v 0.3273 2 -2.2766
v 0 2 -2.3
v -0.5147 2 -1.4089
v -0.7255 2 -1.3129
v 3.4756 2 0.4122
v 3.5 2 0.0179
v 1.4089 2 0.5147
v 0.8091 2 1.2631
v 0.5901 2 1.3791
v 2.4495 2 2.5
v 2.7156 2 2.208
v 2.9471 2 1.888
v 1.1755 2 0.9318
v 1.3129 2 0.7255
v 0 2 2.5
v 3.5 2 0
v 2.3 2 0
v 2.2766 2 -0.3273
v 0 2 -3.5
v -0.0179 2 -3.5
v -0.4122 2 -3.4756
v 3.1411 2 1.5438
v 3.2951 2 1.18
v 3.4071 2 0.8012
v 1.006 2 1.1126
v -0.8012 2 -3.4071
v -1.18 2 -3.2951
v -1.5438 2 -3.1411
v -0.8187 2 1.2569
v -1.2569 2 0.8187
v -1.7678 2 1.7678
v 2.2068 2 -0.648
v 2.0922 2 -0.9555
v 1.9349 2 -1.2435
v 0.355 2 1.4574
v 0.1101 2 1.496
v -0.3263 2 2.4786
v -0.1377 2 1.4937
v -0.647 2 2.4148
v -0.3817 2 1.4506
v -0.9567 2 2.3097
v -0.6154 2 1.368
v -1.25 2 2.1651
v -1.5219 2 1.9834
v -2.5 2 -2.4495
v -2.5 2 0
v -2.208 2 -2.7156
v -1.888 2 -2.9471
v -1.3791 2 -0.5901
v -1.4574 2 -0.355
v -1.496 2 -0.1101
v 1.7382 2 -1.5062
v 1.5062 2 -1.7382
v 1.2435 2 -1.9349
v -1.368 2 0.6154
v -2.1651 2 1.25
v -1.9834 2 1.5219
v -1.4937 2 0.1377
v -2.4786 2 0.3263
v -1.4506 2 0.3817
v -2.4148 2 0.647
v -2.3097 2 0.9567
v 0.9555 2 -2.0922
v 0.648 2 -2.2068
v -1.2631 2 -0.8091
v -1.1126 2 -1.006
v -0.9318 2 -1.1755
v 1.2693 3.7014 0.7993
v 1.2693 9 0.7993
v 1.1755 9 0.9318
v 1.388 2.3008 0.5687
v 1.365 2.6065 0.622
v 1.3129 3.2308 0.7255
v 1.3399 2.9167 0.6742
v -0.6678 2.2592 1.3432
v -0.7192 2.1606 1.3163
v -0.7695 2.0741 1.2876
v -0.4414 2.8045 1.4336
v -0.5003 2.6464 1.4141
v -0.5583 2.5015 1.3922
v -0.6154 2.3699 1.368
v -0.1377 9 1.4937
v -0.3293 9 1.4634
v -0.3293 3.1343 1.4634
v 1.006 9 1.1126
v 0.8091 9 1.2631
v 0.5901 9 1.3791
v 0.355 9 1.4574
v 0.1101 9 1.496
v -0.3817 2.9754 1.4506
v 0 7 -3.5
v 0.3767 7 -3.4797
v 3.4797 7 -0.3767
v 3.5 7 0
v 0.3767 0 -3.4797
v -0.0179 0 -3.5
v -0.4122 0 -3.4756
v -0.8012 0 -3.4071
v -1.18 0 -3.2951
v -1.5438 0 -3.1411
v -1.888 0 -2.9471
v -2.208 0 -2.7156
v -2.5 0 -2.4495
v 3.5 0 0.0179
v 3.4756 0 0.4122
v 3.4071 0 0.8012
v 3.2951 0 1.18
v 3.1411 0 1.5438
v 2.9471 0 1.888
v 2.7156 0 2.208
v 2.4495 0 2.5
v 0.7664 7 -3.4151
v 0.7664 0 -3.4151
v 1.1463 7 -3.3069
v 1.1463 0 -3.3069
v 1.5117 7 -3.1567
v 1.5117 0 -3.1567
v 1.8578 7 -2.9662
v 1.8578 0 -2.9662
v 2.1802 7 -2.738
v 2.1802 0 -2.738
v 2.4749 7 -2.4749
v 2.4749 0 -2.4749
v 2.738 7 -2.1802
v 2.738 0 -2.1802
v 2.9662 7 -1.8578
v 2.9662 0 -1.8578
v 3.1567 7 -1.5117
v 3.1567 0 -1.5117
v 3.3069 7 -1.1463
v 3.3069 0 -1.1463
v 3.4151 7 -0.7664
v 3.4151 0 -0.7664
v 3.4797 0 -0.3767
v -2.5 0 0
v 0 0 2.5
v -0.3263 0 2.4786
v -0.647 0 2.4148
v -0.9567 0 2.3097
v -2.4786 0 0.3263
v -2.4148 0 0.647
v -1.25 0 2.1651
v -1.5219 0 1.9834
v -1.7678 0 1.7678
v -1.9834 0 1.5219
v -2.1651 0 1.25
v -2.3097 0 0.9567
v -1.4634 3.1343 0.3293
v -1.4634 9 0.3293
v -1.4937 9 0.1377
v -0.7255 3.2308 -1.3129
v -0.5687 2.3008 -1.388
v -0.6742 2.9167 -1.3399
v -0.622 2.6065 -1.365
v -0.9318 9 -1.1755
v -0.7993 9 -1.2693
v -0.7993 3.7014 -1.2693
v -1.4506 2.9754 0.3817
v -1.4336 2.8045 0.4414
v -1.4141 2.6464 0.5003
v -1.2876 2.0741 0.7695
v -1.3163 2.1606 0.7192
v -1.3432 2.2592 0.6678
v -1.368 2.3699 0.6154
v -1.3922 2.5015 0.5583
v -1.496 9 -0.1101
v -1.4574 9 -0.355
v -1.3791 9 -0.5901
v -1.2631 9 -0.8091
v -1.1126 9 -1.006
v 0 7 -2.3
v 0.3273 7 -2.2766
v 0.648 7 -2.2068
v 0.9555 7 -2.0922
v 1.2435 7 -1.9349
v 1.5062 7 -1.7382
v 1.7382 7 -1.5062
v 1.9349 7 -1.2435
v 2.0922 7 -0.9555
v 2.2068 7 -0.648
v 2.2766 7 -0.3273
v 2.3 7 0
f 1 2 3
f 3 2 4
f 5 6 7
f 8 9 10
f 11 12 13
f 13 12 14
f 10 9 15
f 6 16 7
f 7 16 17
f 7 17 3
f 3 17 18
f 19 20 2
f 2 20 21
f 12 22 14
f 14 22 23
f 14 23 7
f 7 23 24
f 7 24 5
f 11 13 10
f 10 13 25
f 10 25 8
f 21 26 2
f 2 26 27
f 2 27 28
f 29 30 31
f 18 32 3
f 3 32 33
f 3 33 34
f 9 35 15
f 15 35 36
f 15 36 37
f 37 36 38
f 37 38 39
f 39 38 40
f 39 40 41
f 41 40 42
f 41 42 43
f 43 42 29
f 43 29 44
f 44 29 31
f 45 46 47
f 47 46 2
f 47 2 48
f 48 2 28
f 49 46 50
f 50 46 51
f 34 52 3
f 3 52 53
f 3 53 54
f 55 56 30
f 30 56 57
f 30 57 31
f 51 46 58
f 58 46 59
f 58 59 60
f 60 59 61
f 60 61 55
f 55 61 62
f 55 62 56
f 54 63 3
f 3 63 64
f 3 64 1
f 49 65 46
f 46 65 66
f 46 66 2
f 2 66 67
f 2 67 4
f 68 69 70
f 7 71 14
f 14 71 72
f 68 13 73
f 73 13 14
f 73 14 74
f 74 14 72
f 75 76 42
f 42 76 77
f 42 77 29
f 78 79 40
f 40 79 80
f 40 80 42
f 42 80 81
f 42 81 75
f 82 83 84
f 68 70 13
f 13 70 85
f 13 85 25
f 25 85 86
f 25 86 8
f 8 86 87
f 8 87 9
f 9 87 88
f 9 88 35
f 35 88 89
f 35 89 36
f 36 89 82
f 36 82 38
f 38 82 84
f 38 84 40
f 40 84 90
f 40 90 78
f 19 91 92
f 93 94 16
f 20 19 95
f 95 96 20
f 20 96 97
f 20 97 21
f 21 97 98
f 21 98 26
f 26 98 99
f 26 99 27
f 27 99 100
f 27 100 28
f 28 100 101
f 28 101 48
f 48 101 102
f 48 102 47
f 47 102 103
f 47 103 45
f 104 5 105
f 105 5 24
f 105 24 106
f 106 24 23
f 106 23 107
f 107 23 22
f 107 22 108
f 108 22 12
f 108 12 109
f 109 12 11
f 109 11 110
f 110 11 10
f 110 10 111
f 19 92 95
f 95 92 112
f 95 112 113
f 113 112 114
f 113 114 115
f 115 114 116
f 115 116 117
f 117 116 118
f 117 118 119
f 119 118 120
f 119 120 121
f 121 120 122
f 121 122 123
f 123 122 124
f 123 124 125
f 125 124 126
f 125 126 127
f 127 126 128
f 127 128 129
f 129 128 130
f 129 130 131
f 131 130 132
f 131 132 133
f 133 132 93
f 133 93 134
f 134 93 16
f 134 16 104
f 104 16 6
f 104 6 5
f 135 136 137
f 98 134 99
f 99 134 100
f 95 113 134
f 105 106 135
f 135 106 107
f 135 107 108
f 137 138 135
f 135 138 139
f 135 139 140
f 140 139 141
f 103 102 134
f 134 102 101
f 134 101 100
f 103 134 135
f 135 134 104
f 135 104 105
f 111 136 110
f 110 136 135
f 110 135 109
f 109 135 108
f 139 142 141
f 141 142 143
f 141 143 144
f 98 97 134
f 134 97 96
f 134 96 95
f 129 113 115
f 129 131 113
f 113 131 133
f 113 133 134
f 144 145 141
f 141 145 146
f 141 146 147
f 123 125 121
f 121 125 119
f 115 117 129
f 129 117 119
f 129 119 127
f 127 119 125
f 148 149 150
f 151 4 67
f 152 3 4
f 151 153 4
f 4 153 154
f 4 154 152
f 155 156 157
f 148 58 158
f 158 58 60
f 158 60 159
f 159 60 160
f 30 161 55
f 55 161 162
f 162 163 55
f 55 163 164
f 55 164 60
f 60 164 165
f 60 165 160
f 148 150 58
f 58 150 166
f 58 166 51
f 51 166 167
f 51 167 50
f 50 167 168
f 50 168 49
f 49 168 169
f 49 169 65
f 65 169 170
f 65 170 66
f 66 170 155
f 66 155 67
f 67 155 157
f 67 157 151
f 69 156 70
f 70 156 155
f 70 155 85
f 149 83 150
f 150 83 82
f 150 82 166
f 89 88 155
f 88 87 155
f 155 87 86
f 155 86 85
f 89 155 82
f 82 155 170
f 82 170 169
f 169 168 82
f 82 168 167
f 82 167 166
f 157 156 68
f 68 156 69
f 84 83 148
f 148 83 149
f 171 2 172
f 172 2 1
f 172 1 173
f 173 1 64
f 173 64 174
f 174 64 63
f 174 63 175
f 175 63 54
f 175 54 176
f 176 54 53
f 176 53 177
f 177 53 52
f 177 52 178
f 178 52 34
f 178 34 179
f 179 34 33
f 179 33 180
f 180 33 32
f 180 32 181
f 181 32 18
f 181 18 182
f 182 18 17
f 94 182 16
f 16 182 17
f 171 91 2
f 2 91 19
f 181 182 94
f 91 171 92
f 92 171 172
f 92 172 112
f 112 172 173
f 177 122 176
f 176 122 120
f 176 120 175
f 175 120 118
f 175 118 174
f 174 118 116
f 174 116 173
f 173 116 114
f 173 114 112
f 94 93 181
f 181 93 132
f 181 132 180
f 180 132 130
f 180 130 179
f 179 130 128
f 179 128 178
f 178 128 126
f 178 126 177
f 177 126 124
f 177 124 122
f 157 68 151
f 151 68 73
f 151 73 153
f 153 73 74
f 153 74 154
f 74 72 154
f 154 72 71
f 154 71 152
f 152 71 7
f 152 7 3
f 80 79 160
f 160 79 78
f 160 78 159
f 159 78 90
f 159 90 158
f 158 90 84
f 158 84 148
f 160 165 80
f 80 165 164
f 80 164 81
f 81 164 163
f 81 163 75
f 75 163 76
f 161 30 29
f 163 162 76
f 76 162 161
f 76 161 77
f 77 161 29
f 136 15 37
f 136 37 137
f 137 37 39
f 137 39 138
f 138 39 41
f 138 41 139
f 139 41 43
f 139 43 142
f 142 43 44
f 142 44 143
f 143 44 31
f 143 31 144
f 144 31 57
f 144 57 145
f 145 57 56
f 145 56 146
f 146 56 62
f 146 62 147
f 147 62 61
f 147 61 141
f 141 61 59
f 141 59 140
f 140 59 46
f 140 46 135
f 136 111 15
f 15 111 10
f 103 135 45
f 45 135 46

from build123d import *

# Parameters (mm, degrees)
SKETCH1_R           = 3.5
BOSS_EXTRUDE1_DEPTH = 2
SKETCH2_R           = 1.5
BOSS_EXTRUDE2_DEPTH = 7
SKETCH5_OUTSIDE_W   = 11.676
SKETCH5_OUTSIDE_H   = 11.676
CUT_EXTRUDE1_DEPTH  = 7
BOSS_EXTRUDE4_DEPTH = 5
CHAMFER3_SIZE       = 0.3
CHAMFER3_SIZE2      = 1.701384546
CHAMFER4_SIZE       = 0.2
CHAMFER4_SIZE2      = 1.134256364
CUT_EXTRUDE2_DEPTH  = 3


with BuildPart() as part:
    # Sketch1 → Boss-Extrude1 (new body)
    with BuildSketch(Plane(origin=(0, 0, 0), x_dir=(1, 0, 0), z_dir=(0, 1, 0))):
        Circle(SKETCH1_R)
    extrude(amount=BOSS_EXTRUDE1_DEPTH)

    # Sketch2 → Boss-Extrude2 (add)
    with BuildSketch(Plane(origin=(0, 2, 0), x_dir=(1, 0, 0), z_dir=(0, 1, 0))):
        Circle(SKETCH2_R)
    extrude(amount=BOSS_EXTRUDE2_DEPTH)

    # Sketch5 outside → Cut-Extrude1 (cut)
    with BuildSketch(Plane(origin=(0, 2, 0), x_dir=(1, 0, 0), z_dir=(0, 1, 0))):
        Rectangle(SKETCH5_OUTSIDE_W, SKETCH5_OUTSIDE_H)
        with BuildLine():
            Line((-2.228687609, 2.698694414), (2.698694414, -2.228687609))
            ThreePointArc((2.698694414, -2.228687609), (2.111573719, -2.791282219), (1.41047572, -3.203210615))
            Line((1.41047572, -3.203210615), (-3.203210615, 1.41047572))
            ThreePointArc((-3.203210615, 1.41047572), (-2.791282219, 2.111573719), (-2.228687609, 2.698694414))
        make_face(mode=Mode.SUBTRACT)
    extrude(amount=CUT_EXTRUDE1_DEPTH, mode=Mode.SUBTRACT)

    # Sketch4 → Boss-Extrude4 (add)
    with BuildSketch(Plane(origin=(0, 2, 0), x_dir=(1, 0, 0), z_dir=(0, 1, 0))):
        with BuildLine():
            Line((0, 2.3), (0, 3.5))
            ThreePointArc((0, 3.5), (2.474873734, 2.474873734), (3.5, 0))
            Line((3.5, 0), (2.3, 0))
            ThreePointArc((2.3, 0), (1.626345597, 1.626345597), (0, 2.3))
        make_face()
    extrude(amount=BOSS_EXTRUDE4_DEPTH)

    # Chamfer3
    chamfer3_edges = [part.edges().sort_by_distance(p)[0] for p in [
        (0.235003403, 2, -0.235003403),
    ]]
    chamfer3_side = [part.faces().sort_by_distance(p)[0] for p in [
        (-2.404873734, 2, 2.404873734),
    ]]
    chamfer(chamfer3_edges, length=CHAMFER3_SIZE, length2=CHAMFER3_SIZE2, reference=chamfer3_side[0])

    # Chamfer4
    chamfer4_edges = [part.edges().sort_by_distance(p)[0] for p in [
        (-0.896367447, 2, 0.896367447),
    ]]
    chamfer4_side = [part.faces().sort_by_distance(p)[0] for p in [
        (-0.704284953, 2, -1.435537374),
    ]]
    chamfer(chamfer4_edges, length=CHAMFER4_SIZE, length2=CHAMFER4_SIZE2, reference=chamfer4_side[0])

    # Sketch6 → Cut-Extrude2 (cut, through all)
    with BuildSketch(Plane(origin=(0, 2, 0), x_dir=(1, 0, 0), z_dir=(0, 1, 0))):
        with BuildLine():
            Line((-2.5, 0), (-2.5, 2.449489743))
            ThreePointArc((-2.5, 2.449489743), (-2.474873734, -2.474873734), (2.449489743, -2.5))
            Line((2.449489743, -2.5), (0, -2.5))
            ThreePointArc((0, -2.5), (-1.767766953, -1.767766953), (-2.5, 0))
        make_face()
    extrude(amount=-CUT_EXTRUDE2_DEPTH, mode=Mode.SUBTRACT)


solid = part.part
